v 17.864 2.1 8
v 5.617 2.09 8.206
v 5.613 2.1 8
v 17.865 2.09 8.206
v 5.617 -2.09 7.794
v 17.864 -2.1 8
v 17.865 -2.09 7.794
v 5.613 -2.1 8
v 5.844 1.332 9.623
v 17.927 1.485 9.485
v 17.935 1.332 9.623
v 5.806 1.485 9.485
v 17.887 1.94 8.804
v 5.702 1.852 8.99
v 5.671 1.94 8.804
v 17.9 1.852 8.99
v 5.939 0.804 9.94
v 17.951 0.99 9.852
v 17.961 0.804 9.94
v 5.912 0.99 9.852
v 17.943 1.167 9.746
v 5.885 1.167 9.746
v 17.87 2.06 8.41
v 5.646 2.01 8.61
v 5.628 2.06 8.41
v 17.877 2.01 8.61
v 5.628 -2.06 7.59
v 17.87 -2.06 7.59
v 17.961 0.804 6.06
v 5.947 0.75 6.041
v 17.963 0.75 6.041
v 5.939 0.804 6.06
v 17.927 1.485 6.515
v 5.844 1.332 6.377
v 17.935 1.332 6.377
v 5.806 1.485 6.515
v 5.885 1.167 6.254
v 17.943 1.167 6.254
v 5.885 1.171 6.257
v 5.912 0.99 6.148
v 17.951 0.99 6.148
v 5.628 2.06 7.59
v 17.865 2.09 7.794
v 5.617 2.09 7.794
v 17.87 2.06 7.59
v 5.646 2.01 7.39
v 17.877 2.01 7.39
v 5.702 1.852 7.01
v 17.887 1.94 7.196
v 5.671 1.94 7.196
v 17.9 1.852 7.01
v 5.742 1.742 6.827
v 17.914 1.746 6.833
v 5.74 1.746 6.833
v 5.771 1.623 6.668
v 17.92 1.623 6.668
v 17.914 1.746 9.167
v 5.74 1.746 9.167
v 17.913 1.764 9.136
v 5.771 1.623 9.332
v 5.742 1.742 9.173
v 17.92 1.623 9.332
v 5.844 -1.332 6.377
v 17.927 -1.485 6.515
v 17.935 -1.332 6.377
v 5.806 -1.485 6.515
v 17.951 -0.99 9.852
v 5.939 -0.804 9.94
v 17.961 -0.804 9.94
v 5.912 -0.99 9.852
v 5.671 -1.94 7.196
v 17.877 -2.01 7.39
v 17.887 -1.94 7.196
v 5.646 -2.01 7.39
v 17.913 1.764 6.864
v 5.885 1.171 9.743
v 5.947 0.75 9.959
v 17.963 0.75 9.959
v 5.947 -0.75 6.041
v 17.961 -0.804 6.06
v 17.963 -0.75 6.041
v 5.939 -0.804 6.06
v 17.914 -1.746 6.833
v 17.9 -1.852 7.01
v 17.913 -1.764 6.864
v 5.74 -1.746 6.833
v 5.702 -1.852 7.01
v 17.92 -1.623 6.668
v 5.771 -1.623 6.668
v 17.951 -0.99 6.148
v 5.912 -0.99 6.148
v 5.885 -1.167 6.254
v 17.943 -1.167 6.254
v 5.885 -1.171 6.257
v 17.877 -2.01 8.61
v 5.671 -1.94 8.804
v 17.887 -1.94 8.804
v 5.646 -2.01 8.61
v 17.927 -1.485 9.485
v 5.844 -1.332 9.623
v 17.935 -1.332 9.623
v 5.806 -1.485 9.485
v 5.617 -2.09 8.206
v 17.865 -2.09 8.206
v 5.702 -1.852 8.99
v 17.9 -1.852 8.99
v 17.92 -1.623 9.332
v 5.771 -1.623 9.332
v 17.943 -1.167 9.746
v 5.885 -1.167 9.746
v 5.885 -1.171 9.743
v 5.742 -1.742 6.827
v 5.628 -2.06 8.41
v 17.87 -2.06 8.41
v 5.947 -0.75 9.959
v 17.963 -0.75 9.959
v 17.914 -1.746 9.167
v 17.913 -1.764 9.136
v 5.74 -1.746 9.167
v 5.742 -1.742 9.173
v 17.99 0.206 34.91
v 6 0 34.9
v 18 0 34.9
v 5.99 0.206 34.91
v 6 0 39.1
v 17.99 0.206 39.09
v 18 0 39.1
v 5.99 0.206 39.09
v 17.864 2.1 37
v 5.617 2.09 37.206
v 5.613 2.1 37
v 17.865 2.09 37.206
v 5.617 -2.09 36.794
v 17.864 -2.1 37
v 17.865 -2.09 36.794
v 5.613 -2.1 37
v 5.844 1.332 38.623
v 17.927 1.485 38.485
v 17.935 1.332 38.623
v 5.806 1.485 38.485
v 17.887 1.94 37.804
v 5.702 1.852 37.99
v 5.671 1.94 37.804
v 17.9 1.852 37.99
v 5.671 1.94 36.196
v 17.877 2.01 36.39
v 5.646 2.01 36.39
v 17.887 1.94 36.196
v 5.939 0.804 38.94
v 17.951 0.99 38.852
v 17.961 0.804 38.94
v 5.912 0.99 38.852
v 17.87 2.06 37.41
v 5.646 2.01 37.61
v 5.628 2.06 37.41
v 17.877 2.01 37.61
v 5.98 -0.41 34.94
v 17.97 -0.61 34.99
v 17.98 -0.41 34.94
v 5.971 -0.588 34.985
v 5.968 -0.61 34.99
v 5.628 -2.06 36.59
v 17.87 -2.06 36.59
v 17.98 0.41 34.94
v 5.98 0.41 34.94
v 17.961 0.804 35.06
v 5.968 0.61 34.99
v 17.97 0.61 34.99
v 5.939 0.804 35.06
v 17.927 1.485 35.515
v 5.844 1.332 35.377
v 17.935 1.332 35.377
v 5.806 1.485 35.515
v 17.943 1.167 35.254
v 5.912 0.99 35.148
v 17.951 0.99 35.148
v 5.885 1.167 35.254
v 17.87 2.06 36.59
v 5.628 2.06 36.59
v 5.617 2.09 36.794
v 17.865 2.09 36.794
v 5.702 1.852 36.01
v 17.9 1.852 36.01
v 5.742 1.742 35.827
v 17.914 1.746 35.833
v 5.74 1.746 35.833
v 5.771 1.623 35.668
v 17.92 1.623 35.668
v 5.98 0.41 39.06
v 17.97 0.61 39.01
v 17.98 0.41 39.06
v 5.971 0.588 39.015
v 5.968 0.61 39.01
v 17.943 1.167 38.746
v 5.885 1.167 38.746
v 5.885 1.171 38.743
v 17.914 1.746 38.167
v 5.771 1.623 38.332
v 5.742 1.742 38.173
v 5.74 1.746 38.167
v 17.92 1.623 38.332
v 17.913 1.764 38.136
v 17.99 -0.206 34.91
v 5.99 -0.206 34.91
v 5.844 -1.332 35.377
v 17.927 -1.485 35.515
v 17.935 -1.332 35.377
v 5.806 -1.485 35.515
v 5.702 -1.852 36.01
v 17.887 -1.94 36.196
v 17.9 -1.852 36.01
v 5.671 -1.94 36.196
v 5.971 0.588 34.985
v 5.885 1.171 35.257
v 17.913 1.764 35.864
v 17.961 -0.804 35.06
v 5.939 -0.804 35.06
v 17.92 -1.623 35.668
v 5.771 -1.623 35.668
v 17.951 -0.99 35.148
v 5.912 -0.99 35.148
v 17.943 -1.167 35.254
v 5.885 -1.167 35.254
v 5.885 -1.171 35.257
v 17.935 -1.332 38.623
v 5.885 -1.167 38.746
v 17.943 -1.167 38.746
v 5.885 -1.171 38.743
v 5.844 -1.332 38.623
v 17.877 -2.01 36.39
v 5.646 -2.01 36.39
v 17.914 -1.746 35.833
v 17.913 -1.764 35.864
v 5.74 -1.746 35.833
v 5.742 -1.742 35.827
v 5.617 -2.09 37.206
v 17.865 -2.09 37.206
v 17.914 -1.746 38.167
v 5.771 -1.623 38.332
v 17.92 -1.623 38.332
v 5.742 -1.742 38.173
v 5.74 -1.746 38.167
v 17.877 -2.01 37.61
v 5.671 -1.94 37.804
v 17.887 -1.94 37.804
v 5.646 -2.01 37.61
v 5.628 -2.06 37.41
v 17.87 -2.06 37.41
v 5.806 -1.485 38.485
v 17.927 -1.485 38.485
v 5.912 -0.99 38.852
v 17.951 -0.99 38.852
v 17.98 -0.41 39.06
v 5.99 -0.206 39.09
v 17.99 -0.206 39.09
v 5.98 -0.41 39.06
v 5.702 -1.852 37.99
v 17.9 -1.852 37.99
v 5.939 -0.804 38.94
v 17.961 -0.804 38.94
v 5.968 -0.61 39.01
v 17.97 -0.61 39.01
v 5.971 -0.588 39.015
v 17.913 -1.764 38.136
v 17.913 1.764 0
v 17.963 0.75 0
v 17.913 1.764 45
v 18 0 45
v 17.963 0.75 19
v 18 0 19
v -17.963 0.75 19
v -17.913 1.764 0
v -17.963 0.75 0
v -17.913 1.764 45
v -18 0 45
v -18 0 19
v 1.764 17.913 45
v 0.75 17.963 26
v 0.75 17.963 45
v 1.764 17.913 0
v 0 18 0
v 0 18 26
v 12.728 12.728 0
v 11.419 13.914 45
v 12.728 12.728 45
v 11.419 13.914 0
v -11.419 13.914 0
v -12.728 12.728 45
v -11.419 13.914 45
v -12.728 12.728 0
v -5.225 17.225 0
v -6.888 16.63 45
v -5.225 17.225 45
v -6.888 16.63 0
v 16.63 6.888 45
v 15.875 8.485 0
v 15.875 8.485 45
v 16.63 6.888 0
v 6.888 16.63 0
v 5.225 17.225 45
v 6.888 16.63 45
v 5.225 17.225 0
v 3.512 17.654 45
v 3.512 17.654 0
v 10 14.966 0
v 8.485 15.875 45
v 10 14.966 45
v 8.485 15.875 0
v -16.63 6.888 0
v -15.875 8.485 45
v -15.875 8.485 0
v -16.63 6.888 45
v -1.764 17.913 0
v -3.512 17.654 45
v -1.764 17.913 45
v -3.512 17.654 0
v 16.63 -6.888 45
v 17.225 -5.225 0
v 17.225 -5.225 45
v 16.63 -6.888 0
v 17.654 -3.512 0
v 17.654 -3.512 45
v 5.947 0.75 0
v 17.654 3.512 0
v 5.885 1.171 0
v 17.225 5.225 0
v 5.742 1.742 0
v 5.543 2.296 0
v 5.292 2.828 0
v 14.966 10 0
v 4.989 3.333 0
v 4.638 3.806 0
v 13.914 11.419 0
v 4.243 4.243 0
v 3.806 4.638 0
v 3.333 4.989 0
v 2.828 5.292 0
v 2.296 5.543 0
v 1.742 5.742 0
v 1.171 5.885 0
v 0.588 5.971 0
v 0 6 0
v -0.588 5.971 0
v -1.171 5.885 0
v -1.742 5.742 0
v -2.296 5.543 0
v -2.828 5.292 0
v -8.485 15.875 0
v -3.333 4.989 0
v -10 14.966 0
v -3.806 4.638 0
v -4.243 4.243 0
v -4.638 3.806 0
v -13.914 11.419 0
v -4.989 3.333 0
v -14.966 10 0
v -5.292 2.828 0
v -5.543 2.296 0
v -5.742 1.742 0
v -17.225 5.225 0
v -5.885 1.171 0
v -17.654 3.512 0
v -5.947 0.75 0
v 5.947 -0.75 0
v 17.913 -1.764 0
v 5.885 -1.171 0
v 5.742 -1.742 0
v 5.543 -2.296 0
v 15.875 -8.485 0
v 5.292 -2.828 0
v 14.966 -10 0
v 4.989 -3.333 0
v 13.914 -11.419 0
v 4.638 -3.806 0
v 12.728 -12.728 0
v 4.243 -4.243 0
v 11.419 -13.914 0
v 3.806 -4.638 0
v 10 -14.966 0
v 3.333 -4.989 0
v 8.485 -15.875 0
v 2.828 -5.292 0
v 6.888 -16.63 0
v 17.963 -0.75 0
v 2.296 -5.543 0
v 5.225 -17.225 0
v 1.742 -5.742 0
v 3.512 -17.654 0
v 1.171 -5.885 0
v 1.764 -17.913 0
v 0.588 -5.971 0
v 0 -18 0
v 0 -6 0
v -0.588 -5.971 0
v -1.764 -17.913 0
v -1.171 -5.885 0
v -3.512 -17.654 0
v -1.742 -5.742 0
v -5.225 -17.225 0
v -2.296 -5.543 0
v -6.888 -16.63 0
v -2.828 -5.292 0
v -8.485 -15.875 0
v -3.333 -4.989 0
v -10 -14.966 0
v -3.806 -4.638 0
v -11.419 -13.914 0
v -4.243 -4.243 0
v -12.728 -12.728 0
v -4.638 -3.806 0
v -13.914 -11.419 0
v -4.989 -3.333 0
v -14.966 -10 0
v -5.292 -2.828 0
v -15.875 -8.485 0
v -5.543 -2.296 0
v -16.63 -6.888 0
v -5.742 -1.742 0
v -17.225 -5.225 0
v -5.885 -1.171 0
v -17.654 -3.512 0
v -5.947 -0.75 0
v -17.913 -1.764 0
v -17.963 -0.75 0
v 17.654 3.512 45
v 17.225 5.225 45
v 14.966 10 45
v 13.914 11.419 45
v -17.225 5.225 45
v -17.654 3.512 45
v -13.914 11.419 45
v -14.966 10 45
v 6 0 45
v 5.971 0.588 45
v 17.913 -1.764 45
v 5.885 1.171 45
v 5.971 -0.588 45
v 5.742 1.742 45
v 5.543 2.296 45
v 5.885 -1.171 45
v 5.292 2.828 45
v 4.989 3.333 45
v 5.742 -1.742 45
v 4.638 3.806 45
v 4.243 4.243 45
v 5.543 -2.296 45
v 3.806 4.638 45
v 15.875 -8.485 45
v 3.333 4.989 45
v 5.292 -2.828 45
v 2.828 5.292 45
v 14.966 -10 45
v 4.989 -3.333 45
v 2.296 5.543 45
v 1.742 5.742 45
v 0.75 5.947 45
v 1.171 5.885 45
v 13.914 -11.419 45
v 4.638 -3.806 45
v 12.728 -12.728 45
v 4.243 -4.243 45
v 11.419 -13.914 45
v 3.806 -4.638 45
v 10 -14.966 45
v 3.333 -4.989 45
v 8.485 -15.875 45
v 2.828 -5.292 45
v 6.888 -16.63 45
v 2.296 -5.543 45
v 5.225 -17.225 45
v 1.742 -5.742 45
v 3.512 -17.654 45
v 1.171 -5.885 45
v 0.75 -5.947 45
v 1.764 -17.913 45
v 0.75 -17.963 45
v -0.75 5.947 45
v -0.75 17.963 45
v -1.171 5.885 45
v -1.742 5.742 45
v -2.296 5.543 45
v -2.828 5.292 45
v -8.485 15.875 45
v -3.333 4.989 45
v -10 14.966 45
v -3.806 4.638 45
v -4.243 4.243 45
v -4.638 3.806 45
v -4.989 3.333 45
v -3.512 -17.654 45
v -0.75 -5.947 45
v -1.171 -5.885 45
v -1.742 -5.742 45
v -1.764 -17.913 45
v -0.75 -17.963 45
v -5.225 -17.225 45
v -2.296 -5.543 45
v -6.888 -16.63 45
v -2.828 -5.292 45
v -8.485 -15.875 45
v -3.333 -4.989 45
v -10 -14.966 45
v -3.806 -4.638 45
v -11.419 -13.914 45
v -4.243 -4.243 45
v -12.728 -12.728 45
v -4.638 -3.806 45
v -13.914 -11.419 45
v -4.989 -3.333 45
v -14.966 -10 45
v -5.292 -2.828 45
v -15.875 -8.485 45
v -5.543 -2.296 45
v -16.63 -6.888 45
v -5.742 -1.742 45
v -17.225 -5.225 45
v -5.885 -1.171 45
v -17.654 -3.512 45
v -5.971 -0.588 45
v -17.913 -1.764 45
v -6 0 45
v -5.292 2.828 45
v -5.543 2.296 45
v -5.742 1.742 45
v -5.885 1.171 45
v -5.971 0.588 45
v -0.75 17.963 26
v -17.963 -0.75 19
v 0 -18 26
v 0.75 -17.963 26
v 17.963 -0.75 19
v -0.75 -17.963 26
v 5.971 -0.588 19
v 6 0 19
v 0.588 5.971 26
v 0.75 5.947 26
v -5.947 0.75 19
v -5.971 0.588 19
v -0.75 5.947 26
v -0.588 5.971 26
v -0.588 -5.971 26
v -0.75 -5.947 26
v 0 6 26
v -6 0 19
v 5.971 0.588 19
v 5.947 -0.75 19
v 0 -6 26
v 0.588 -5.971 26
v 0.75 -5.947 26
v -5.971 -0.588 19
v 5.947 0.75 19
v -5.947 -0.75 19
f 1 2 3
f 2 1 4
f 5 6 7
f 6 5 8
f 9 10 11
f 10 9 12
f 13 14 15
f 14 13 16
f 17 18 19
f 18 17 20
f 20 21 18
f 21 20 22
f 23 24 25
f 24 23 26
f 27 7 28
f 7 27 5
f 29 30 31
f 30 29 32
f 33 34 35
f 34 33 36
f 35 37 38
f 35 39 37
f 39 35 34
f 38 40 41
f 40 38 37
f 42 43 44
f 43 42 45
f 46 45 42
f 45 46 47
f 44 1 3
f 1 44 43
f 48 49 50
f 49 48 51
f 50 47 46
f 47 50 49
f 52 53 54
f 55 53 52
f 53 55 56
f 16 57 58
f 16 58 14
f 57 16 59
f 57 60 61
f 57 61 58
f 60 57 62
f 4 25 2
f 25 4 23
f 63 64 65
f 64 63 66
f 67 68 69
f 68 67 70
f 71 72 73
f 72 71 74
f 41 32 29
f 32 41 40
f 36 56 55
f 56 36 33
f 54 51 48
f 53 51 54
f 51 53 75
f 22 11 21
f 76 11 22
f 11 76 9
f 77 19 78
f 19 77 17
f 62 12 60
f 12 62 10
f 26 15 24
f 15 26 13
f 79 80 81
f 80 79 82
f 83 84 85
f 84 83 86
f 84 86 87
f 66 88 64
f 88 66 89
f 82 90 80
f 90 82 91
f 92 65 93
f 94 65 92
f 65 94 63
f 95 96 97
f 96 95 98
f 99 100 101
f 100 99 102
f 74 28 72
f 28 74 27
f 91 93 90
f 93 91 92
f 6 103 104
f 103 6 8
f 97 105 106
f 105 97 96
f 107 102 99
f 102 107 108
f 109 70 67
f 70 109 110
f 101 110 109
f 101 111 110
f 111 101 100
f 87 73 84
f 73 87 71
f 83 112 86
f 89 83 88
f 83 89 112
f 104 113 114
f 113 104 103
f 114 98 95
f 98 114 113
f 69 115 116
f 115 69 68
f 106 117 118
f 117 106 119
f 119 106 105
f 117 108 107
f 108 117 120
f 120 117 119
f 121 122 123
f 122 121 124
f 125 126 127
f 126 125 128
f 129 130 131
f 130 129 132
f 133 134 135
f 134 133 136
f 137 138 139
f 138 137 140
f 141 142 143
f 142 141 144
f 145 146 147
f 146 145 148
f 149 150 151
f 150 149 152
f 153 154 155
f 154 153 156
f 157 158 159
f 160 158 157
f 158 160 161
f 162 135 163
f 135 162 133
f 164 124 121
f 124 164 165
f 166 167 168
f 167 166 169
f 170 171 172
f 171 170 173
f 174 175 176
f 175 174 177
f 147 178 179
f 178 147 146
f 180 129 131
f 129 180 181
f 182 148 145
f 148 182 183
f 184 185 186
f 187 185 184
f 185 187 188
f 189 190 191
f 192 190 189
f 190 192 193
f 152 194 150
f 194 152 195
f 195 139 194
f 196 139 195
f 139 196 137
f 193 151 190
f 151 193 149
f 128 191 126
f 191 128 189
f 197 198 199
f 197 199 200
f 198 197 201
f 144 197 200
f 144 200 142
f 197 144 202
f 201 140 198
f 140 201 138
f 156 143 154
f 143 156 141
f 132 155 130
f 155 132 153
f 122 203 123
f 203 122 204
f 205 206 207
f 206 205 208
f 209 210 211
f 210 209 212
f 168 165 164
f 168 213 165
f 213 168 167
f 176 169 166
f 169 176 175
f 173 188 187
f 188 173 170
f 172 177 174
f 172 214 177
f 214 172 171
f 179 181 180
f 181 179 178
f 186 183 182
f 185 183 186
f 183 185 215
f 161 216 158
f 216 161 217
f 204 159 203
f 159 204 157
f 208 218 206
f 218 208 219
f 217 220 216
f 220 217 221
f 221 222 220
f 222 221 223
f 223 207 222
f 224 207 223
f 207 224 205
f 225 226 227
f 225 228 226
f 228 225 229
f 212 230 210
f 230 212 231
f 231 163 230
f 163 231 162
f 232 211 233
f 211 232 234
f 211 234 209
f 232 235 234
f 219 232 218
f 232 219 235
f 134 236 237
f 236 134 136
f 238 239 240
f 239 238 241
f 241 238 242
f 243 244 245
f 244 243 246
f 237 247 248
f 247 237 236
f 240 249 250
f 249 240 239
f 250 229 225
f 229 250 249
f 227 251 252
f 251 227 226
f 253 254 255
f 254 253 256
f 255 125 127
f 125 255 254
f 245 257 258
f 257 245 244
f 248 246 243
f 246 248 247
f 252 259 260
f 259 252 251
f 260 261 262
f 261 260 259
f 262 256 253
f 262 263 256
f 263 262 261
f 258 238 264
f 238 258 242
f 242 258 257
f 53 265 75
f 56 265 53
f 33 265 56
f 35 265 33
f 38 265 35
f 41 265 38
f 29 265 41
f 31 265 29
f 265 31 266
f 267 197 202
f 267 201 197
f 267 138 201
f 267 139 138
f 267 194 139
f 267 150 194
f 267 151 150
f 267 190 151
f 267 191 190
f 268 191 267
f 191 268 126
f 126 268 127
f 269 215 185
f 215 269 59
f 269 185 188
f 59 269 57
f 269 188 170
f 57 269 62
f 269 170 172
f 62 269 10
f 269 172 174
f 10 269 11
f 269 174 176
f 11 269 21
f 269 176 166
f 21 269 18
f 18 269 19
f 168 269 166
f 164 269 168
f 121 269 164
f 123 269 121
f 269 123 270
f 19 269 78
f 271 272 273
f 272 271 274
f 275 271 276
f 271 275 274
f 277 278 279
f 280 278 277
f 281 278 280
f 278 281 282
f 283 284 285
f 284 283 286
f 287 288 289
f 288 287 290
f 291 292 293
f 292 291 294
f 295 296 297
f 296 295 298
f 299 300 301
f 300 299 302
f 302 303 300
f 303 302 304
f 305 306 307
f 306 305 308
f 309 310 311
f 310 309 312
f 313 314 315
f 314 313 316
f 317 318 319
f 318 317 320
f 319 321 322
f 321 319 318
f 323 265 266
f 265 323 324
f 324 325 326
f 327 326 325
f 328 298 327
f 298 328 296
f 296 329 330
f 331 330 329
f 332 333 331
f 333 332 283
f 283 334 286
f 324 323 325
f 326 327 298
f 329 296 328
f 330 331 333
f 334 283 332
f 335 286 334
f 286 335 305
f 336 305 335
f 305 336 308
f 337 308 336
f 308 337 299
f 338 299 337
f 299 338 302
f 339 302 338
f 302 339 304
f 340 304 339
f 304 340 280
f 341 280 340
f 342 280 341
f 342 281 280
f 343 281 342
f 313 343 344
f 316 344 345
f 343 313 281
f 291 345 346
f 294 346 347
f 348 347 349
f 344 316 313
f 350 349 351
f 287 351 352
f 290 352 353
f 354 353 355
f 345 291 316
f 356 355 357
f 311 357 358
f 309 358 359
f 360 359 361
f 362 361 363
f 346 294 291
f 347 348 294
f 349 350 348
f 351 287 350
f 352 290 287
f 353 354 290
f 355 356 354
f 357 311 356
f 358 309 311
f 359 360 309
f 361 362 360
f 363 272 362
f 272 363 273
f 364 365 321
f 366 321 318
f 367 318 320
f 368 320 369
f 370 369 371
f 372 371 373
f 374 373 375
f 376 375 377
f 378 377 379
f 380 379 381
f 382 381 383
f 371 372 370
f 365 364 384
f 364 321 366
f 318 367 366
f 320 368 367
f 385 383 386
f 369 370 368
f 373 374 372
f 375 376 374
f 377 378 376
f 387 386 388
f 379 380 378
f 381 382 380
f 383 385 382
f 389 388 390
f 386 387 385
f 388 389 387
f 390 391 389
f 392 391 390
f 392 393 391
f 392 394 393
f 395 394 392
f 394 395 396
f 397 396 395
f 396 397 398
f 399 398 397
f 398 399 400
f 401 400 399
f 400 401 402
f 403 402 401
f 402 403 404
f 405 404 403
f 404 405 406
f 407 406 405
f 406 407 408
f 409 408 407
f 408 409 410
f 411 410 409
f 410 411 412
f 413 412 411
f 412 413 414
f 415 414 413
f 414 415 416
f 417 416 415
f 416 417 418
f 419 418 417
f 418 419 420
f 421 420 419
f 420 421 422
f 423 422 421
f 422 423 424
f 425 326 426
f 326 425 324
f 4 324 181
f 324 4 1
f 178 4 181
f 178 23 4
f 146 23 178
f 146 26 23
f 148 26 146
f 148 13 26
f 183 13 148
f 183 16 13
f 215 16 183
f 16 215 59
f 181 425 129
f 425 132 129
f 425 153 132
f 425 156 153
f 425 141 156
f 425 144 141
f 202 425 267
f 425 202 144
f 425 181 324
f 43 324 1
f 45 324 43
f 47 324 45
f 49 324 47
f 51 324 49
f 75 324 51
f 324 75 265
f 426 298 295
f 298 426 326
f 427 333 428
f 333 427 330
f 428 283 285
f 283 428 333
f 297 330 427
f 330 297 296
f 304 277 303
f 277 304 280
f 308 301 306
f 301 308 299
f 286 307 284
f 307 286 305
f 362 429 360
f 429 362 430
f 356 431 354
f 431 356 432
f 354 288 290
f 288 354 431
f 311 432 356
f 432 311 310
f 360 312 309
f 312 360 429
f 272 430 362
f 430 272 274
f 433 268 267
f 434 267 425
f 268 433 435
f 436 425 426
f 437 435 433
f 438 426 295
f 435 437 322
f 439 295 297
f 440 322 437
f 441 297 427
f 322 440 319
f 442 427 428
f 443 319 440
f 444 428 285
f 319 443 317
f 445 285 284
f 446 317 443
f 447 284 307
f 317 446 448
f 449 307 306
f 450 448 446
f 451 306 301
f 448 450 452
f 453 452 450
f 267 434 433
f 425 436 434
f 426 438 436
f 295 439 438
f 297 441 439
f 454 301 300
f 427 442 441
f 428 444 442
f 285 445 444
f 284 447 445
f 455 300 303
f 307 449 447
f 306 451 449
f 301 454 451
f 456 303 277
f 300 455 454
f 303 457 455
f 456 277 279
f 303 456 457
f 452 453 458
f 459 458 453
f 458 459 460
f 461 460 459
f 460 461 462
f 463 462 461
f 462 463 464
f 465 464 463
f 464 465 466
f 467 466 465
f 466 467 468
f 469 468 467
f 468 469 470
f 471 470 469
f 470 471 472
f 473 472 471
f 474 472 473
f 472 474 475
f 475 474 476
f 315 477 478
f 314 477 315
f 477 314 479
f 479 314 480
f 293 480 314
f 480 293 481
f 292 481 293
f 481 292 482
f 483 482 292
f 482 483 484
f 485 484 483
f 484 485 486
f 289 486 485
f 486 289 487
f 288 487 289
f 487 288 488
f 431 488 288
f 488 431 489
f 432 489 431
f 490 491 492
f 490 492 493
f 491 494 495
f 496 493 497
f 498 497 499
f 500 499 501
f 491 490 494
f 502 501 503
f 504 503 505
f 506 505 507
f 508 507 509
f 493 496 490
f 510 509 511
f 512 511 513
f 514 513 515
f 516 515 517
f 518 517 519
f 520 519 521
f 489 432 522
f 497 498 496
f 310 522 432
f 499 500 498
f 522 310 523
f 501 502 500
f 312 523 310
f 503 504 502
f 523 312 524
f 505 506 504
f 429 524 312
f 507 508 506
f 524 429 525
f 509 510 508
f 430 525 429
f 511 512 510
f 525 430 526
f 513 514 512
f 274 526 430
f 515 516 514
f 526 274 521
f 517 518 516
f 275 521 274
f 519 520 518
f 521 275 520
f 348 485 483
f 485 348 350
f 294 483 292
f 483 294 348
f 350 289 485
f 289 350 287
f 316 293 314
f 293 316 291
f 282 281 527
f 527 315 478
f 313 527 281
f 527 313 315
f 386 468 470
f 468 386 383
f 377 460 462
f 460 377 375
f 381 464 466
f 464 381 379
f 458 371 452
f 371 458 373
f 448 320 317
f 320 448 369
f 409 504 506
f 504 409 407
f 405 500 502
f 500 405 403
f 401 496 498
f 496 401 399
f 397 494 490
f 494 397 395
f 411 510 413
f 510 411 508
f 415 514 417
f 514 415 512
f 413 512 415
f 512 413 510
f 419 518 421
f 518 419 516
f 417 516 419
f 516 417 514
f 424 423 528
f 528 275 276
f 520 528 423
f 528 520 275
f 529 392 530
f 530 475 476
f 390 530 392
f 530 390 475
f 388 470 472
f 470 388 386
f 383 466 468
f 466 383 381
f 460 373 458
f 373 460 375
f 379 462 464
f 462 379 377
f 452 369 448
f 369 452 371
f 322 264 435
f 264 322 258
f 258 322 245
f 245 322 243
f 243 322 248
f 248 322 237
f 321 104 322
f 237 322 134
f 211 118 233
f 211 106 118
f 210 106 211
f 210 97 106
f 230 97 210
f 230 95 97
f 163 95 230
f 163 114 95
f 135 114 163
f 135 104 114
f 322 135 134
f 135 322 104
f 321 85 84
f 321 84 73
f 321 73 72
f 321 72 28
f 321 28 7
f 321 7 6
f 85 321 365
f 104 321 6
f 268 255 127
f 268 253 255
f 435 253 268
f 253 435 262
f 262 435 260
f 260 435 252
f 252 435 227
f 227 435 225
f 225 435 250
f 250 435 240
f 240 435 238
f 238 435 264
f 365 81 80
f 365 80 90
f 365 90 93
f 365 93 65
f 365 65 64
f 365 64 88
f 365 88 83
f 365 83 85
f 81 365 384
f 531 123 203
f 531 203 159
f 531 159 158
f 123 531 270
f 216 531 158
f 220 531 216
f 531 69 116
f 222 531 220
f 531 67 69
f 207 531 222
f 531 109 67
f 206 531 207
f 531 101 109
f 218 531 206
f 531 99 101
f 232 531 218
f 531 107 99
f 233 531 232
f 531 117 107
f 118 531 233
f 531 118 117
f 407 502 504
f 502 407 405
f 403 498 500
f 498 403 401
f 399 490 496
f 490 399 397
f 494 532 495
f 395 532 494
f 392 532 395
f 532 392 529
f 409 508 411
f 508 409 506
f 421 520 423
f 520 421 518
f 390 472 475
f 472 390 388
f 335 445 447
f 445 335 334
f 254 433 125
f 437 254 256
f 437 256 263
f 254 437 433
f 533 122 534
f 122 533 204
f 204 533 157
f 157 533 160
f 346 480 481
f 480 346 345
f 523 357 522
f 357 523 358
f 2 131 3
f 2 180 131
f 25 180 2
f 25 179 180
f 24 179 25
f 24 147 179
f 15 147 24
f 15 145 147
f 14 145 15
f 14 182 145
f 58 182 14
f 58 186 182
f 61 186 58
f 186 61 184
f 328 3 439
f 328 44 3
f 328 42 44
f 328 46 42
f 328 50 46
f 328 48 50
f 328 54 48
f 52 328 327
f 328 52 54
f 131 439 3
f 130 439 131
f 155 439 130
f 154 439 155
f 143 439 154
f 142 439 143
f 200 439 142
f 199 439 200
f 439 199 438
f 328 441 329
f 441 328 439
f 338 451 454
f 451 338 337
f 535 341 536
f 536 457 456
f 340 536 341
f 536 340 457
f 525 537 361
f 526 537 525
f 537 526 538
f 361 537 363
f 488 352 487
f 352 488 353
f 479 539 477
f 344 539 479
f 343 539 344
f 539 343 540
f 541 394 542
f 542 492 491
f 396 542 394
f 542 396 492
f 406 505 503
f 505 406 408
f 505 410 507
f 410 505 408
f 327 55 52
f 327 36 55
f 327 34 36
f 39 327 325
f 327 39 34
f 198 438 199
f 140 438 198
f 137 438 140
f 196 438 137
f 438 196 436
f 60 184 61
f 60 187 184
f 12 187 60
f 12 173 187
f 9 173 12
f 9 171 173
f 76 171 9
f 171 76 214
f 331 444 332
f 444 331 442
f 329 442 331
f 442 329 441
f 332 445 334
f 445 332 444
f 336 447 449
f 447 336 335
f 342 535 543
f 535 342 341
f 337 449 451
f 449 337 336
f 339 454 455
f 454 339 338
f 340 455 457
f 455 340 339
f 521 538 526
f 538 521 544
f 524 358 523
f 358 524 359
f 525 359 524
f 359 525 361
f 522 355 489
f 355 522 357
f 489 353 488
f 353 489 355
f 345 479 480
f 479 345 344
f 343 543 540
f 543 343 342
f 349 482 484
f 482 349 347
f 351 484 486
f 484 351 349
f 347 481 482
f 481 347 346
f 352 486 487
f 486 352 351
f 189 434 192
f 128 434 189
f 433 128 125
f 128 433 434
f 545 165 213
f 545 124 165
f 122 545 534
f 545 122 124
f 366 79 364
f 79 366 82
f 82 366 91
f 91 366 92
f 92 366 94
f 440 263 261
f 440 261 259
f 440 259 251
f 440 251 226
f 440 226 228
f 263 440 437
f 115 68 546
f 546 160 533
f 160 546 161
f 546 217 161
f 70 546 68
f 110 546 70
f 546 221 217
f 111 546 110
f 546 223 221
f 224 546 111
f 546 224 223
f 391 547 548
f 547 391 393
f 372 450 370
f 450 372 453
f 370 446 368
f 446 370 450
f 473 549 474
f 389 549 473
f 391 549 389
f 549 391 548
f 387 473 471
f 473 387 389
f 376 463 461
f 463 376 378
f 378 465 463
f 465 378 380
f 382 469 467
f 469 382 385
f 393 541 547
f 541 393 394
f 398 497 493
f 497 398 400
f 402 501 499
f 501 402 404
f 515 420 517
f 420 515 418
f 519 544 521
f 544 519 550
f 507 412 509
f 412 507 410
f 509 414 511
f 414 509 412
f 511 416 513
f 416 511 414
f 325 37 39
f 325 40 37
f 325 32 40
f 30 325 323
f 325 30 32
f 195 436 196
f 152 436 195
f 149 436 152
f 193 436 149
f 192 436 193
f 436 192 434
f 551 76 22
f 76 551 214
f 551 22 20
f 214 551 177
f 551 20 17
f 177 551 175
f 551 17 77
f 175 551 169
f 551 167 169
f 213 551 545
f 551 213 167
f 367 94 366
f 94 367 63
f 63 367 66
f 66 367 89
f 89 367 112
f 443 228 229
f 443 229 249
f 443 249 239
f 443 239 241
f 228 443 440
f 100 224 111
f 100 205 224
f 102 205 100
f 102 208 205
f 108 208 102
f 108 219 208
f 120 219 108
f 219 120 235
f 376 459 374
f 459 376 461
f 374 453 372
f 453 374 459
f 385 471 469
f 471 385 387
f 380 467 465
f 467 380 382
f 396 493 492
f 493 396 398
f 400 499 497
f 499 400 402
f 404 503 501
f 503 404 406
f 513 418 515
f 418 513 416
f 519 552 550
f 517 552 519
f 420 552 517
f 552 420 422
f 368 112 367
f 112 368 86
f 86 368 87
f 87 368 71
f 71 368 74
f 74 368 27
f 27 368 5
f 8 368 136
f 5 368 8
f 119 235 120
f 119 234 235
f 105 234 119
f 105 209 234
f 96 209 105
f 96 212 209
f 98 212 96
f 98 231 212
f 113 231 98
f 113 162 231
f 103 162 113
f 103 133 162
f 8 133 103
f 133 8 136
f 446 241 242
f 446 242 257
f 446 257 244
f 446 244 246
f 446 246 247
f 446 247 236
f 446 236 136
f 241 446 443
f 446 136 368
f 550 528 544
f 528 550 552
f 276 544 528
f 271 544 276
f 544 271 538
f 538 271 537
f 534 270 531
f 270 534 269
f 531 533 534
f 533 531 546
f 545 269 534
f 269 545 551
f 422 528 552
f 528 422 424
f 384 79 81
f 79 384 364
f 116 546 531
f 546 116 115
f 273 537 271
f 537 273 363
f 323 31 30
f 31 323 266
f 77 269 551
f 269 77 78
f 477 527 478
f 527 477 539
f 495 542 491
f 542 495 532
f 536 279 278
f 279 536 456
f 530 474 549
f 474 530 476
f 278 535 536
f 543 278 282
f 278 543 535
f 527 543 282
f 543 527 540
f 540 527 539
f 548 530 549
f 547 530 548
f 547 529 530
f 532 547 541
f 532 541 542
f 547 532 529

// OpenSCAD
// Original MechIntel educational model. CC0-1.0. Units: mm.
// Not a standardized or load-rated component.
$fn=96;
outer_diameter=36; length=45; bore=12; slot_width=1.5; slot_depth=19; radial_hole=4.2;
$fn=64;
difference(){
 cylinder(d=outer_diameter,h=length);
 translate([0,0,-1]) cylinder(d=bore,h=length+2);
 translate([-outer_diameter/2-1,-slot_width/2,-1]) cube([outer_diameter+2,slot_width,slot_depth+1]);
 translate([-slot_width/2,-outer_diameter/2-1,length-slot_depth]) cube([slot_width,outer_diameter+2,slot_depth+1]);
 for(z=[8,length-8]) translate([0,0,z]) rotate([0,90,0]) cylinder(d=radial_hole,h=outer_diameter/2+1);
}
